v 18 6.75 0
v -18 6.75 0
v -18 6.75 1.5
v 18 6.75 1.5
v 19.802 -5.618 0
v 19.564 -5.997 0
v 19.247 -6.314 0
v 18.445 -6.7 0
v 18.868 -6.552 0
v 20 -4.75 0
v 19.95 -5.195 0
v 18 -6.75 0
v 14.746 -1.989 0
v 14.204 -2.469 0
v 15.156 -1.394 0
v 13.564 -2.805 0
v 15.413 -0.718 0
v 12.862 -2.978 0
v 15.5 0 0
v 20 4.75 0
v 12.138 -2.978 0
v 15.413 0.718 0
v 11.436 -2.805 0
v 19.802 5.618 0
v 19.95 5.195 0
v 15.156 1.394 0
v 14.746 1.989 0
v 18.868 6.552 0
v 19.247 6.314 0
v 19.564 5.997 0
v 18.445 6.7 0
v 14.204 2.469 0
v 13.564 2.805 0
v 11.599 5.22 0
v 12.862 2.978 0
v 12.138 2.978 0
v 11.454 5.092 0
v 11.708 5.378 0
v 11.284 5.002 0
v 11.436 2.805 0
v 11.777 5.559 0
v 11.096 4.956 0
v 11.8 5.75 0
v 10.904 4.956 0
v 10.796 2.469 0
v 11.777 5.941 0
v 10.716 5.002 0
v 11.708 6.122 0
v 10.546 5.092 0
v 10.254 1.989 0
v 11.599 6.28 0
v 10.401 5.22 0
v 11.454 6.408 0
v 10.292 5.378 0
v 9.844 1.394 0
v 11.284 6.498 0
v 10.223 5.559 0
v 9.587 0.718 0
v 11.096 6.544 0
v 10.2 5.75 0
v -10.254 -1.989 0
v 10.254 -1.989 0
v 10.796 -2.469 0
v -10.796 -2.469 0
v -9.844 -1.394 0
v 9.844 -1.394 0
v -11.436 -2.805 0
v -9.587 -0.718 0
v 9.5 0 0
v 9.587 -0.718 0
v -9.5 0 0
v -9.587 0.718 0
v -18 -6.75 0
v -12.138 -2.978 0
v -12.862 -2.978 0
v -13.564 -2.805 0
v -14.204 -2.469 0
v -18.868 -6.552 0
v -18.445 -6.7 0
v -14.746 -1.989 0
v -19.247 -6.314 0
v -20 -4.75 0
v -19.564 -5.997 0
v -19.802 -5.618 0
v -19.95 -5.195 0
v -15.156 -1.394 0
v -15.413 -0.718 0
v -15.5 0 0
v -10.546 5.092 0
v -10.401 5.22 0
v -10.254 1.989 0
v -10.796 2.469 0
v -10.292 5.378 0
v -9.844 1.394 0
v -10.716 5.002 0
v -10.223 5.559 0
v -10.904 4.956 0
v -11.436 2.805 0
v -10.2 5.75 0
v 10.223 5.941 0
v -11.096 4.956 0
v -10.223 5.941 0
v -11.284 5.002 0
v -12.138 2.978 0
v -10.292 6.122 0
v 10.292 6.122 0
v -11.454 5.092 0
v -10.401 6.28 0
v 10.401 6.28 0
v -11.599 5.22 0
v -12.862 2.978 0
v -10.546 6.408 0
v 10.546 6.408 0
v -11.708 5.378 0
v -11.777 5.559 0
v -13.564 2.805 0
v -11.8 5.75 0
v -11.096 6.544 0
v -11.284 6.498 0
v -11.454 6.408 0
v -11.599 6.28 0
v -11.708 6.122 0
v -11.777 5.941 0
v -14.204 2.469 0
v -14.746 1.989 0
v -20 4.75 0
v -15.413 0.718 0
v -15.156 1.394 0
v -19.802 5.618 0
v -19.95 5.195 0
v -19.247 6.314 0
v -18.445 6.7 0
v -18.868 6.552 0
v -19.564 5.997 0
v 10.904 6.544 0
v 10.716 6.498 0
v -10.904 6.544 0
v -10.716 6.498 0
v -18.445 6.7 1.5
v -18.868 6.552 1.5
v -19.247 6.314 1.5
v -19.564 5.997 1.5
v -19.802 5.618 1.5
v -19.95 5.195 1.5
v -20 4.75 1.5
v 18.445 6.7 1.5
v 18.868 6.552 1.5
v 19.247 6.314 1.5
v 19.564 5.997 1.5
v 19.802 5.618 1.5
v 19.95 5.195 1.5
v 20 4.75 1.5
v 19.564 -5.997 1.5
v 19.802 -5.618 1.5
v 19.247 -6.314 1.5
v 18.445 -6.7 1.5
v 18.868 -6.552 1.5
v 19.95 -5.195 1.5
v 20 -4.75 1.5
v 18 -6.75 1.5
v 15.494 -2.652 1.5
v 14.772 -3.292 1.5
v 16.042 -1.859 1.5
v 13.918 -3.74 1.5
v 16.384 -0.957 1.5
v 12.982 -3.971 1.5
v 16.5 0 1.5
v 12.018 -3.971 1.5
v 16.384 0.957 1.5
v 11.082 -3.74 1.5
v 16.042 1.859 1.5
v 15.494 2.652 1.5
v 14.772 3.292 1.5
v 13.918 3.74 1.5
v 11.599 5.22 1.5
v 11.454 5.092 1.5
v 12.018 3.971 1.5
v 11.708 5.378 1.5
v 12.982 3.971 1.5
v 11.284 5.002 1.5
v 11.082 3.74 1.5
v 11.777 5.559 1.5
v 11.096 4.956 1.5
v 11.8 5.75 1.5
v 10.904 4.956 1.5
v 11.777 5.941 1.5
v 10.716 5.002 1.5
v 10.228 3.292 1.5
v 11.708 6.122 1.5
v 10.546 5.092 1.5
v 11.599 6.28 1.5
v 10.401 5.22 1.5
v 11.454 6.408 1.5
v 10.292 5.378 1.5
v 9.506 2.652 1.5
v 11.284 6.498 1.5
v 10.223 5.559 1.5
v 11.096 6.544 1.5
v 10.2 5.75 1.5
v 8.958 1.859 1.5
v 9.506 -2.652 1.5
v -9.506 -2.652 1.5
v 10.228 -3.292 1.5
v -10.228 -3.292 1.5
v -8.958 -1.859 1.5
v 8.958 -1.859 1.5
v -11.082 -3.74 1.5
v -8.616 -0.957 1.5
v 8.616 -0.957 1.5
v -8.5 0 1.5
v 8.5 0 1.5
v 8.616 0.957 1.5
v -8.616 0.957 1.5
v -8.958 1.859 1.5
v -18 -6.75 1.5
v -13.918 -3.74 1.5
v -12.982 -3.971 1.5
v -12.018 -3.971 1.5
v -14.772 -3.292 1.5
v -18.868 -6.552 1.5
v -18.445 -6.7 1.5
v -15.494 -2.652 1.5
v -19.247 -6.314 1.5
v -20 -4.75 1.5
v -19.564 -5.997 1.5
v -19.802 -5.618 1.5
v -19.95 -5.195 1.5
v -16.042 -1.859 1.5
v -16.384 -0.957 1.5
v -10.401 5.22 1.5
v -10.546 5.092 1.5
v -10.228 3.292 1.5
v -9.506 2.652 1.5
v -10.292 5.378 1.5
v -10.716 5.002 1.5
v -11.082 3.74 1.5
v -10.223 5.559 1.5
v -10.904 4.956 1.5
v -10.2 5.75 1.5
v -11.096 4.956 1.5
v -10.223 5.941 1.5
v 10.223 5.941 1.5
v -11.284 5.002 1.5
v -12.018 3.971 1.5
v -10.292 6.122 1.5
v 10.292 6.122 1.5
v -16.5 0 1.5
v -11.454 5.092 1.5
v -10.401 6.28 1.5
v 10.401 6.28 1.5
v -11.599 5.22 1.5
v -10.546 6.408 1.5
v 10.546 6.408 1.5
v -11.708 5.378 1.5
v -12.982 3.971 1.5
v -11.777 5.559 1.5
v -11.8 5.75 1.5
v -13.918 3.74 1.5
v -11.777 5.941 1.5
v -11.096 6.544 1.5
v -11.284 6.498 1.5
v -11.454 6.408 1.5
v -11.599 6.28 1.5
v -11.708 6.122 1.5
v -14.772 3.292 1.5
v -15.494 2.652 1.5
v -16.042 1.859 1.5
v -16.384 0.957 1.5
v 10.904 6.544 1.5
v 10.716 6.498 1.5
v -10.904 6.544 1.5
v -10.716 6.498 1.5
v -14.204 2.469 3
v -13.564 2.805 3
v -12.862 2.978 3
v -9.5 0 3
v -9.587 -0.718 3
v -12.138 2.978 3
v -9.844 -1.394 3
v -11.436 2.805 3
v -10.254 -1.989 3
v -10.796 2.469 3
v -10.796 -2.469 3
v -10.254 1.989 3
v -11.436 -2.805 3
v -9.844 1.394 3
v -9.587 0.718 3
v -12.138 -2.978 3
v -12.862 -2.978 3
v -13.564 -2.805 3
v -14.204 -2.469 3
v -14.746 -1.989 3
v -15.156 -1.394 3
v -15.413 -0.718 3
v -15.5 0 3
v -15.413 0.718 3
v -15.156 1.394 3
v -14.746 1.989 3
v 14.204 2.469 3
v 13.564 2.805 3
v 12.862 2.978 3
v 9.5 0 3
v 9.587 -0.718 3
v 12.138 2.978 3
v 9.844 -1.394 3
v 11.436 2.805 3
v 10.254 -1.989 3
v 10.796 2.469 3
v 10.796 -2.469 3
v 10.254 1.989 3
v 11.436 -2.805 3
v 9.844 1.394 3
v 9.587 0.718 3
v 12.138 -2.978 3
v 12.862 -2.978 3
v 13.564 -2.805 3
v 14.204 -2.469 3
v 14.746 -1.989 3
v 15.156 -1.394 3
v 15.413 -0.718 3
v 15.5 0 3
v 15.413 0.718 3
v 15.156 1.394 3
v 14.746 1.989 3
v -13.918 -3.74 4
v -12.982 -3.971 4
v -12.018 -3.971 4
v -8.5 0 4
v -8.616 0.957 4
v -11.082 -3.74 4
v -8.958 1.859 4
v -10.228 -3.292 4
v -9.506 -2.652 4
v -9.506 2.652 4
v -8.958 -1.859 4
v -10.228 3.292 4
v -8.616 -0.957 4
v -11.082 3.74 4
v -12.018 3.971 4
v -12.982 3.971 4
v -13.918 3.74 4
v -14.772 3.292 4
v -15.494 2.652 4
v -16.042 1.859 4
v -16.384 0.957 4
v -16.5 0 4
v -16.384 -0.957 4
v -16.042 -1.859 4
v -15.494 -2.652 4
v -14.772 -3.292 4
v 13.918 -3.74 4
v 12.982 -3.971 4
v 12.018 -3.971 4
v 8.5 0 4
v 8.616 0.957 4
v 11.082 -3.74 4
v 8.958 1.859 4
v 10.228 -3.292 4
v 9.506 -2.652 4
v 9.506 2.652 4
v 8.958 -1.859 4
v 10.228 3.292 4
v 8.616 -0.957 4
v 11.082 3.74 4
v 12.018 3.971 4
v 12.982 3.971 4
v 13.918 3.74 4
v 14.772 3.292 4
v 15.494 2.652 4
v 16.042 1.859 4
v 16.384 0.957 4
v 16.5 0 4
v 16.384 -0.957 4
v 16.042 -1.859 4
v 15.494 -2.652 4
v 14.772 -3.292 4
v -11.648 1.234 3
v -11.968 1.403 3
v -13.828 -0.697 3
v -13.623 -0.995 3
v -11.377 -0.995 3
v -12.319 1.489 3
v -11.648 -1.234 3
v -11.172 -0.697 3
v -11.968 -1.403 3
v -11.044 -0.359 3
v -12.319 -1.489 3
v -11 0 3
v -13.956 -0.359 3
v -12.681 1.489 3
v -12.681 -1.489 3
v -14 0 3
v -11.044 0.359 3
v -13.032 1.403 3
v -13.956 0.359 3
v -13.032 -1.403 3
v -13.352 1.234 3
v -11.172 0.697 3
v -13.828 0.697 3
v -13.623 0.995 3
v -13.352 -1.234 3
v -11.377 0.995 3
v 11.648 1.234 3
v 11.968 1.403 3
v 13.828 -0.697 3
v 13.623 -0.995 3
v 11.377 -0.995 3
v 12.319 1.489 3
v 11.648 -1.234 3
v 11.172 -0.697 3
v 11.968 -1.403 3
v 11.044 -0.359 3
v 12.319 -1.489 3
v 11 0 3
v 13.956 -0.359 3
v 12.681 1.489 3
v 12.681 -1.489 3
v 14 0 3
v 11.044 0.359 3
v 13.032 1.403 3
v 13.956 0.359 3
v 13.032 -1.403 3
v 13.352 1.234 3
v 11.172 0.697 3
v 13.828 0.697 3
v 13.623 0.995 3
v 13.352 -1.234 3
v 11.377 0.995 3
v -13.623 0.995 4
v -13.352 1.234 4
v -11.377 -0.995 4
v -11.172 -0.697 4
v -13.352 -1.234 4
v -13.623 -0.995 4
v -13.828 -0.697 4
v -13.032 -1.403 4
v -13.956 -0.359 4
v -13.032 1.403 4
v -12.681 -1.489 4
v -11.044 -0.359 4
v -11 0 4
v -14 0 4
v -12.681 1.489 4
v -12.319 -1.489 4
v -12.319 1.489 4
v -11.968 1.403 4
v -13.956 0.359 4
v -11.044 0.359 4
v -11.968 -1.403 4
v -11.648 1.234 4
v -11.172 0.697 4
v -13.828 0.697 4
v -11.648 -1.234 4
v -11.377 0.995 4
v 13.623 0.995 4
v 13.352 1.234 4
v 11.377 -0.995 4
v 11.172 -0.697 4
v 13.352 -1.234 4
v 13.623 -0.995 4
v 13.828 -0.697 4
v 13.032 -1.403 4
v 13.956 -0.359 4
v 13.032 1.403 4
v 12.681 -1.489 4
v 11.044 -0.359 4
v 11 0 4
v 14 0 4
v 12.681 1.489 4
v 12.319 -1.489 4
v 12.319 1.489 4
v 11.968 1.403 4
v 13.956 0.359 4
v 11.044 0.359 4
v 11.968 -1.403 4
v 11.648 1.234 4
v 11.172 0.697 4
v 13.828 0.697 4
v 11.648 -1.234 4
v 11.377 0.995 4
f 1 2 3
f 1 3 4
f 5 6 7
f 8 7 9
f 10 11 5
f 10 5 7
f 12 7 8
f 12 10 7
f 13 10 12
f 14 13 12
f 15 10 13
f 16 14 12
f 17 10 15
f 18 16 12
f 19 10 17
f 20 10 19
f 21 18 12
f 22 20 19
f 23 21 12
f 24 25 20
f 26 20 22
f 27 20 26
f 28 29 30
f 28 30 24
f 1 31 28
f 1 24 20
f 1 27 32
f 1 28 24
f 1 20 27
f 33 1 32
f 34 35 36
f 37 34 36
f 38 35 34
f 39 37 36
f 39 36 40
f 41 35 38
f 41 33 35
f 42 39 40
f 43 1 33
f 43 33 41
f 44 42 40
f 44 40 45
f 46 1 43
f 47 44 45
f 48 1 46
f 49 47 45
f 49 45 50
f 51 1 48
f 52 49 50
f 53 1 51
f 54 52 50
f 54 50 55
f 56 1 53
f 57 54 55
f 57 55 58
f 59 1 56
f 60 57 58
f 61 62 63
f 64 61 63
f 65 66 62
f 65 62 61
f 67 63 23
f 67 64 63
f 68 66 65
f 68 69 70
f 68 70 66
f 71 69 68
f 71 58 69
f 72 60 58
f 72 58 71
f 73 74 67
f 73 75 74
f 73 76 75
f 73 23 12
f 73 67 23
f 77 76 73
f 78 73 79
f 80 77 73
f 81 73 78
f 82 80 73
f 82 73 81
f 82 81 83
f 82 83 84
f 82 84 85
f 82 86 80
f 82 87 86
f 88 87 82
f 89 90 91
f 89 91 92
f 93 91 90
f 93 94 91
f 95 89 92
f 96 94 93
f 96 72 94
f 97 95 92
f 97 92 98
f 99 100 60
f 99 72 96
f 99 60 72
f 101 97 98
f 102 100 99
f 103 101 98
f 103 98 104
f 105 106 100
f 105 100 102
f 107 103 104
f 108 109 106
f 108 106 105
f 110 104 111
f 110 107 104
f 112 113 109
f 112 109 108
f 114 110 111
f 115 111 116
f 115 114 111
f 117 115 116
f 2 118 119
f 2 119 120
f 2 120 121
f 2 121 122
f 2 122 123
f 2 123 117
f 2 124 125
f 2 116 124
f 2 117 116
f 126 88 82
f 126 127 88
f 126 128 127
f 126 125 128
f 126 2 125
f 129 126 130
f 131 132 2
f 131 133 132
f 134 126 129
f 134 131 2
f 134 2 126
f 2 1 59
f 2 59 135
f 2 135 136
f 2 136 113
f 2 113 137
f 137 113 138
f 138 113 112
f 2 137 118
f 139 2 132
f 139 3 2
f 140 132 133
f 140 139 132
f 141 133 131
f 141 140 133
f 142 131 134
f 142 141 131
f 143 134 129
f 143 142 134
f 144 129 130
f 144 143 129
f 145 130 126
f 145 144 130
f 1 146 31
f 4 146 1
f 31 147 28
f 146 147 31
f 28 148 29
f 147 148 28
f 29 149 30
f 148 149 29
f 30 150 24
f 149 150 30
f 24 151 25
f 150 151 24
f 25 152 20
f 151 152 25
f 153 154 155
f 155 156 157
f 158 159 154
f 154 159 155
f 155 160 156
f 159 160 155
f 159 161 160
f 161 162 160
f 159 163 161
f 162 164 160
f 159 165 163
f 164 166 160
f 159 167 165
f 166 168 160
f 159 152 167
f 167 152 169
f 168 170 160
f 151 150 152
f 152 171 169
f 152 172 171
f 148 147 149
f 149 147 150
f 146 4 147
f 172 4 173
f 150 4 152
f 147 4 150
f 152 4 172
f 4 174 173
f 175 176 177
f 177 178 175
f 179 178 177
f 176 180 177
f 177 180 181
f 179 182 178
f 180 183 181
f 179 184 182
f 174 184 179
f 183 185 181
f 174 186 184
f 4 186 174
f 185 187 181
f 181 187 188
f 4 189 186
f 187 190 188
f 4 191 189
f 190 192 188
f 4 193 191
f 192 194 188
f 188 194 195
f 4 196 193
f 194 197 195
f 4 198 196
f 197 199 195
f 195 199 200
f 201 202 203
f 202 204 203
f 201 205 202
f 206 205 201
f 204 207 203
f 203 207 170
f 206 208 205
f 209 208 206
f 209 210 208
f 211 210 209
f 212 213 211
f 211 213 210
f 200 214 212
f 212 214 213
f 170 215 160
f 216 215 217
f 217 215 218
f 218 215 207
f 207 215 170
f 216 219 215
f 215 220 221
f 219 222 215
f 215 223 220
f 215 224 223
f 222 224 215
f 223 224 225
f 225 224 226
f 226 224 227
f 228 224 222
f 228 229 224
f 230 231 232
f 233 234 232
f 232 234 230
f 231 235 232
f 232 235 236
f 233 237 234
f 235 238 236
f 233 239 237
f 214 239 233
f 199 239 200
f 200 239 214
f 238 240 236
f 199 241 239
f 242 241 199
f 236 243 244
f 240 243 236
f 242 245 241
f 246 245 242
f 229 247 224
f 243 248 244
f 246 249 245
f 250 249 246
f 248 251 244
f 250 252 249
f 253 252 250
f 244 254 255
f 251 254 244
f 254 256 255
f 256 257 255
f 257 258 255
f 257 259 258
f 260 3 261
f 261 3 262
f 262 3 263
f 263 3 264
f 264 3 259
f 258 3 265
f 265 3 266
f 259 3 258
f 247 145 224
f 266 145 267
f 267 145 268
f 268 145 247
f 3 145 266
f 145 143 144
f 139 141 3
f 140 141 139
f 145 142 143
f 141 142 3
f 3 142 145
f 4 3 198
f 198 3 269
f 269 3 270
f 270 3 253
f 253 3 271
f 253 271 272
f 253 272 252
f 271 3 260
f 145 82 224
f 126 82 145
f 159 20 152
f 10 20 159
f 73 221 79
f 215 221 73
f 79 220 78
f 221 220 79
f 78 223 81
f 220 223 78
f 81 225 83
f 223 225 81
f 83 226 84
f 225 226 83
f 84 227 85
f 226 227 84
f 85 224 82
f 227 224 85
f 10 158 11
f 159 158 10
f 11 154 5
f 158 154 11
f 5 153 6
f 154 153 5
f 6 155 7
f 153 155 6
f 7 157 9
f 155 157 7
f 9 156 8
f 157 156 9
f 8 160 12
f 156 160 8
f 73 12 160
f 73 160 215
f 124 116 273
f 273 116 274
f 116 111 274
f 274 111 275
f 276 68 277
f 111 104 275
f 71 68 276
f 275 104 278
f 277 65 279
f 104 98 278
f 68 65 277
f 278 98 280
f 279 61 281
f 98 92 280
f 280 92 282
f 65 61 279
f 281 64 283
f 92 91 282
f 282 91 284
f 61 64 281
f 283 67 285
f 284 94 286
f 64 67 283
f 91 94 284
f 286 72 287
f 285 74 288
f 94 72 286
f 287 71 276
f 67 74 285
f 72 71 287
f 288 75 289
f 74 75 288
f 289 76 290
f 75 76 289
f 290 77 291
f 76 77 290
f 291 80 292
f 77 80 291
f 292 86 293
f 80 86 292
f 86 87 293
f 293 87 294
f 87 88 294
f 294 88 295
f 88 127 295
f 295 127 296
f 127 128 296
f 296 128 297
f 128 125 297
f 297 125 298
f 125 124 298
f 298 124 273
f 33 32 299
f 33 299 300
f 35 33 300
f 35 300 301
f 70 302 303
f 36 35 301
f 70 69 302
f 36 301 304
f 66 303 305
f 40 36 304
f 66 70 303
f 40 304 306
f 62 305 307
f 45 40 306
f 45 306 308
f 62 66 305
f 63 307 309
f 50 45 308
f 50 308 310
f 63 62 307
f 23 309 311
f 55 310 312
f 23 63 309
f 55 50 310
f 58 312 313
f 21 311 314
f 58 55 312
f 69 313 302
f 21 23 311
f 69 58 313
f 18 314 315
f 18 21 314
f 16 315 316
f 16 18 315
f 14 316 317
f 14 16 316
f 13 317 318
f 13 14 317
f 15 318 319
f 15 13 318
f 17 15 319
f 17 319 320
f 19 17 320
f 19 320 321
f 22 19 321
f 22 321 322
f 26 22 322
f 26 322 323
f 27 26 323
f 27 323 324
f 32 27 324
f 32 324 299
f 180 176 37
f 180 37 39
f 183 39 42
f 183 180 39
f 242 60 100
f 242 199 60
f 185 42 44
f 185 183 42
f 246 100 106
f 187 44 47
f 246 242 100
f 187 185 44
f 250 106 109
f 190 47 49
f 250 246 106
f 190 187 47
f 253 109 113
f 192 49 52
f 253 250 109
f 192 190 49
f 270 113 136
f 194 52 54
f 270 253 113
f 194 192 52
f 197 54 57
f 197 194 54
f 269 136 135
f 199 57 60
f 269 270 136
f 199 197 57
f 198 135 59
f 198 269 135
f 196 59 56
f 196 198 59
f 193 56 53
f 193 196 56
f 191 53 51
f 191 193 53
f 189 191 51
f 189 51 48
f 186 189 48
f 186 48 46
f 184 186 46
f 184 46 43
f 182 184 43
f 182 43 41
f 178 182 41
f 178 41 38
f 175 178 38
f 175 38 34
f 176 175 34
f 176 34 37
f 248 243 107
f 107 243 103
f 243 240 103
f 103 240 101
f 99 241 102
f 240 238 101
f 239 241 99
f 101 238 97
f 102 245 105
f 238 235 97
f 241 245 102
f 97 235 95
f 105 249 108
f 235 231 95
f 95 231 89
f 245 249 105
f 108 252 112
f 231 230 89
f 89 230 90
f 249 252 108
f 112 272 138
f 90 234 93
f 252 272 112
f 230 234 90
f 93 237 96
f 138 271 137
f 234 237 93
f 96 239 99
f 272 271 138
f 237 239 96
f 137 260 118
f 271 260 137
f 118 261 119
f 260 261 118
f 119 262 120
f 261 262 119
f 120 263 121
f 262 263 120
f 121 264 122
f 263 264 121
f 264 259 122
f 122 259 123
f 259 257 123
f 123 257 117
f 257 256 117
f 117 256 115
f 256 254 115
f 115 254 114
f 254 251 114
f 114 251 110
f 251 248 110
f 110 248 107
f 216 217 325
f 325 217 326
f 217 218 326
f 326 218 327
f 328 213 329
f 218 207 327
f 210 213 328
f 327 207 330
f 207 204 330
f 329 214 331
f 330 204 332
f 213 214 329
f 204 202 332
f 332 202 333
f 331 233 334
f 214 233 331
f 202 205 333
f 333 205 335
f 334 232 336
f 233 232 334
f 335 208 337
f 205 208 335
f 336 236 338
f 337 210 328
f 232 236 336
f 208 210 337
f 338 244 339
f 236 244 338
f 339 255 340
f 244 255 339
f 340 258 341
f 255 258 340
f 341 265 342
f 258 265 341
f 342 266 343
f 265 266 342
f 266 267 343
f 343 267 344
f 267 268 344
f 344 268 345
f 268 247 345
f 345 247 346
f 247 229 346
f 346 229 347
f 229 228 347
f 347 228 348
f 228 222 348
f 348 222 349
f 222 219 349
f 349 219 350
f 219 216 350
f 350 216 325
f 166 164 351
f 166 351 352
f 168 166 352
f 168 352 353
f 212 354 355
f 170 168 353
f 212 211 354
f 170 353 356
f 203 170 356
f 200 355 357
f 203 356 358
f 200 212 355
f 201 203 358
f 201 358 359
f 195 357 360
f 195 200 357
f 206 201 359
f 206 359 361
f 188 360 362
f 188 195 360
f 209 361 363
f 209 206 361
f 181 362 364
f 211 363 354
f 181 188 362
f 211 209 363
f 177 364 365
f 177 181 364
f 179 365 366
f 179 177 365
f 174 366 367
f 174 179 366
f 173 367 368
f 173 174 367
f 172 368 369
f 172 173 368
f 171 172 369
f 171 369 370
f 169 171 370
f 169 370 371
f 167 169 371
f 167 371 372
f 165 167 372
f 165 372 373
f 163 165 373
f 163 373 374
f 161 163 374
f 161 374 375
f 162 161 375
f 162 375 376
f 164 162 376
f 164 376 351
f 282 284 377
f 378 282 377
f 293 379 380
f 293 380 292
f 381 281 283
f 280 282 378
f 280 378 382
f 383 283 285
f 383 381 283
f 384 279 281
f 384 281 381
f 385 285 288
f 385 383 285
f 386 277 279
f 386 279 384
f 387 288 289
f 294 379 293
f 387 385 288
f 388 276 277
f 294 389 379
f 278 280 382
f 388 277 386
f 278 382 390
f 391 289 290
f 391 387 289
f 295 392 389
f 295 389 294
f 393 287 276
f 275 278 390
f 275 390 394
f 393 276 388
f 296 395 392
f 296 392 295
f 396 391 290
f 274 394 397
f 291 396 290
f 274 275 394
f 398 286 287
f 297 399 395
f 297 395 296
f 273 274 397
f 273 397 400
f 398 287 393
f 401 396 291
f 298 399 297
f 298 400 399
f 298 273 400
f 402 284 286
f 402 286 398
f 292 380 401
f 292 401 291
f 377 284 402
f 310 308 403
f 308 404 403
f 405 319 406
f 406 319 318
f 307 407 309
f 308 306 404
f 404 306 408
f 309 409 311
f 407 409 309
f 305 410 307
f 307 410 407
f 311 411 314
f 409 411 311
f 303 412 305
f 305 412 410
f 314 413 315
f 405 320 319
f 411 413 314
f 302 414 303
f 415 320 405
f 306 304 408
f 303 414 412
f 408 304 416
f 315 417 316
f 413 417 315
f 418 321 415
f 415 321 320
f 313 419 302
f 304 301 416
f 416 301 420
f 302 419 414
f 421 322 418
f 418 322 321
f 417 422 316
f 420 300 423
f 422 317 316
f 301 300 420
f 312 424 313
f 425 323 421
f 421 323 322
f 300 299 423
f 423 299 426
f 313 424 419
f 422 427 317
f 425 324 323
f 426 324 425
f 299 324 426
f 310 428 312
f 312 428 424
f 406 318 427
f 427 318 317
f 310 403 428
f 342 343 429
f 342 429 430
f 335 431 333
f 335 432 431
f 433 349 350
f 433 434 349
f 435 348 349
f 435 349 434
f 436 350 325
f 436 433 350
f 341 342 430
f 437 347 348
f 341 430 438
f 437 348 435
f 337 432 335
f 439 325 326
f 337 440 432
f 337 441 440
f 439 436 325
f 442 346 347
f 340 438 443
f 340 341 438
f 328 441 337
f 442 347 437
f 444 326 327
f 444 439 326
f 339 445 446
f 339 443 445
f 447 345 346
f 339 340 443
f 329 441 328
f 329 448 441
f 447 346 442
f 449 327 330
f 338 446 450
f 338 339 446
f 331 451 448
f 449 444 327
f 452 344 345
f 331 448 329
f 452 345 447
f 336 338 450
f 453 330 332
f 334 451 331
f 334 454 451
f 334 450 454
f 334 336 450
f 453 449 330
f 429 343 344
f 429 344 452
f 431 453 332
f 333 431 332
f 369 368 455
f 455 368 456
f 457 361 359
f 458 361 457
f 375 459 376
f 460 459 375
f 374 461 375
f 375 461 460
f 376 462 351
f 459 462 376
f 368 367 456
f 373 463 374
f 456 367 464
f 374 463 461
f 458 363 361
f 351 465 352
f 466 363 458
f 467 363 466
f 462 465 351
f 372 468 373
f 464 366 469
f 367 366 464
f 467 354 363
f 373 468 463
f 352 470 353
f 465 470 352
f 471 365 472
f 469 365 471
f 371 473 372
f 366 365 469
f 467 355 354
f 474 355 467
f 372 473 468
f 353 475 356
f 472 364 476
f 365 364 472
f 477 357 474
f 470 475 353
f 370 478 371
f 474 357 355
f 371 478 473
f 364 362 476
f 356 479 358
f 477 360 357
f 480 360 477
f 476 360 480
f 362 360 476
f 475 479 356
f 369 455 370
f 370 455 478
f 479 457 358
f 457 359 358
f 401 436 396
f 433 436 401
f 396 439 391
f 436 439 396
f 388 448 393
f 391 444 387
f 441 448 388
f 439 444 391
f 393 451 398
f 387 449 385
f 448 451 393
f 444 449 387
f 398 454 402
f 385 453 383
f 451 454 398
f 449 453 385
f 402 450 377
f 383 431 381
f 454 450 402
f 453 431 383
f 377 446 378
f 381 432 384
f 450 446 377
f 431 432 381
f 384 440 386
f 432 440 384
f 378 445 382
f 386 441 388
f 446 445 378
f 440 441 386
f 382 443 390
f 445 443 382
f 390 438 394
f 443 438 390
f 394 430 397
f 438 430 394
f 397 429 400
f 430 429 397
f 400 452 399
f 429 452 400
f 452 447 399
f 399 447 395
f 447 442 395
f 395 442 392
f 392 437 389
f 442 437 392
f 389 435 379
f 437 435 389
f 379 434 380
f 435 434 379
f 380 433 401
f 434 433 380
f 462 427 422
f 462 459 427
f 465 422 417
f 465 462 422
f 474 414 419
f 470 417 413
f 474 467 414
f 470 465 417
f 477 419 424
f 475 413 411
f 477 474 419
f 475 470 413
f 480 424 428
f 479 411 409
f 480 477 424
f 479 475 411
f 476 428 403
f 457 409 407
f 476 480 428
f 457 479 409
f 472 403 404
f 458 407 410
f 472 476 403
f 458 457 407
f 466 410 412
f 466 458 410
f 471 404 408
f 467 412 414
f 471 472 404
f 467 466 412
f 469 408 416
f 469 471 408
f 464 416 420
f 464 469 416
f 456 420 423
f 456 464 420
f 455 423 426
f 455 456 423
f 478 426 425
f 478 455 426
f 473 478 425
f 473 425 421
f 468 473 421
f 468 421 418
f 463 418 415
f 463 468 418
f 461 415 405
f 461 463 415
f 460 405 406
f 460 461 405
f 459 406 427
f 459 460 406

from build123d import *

# Parameters (mm, degrees)
SKETCH_W        = 40
SKETCH_H        = 13.5
PAD_DEPTH       = 1.5
FILLET_R        = 2
SKETCH001_R     = 0.8
POCKET_DEPTH    = 5
SKETCH002_R     = 4
PAD001_DEPTH    = 2.5
SKETCH003_R     = 1.5
POCKET001_DEPTH = 1
SKETCH004_R     = 3
POCKET002_DEPTH = 3


with BuildPart() as part:
    # Sketch → Pad (new body)
    with BuildSketch(Plane.XY):
        Rectangle(SKETCH_W, SKETCH_H)
    extrude(amount=PAD_DEPTH)

    # Fillet
    fillet_edges = [part.edges().sort_by_distance(p)[0] for p in [
        (-20, -6.75, 0.75),
        (-20, 6.75, 0.75),
        (20, 6.75, 0.75),
        (20, -6.75, 0.75),
    ]]
    fillet(fillet_edges, radius=FILLET_R)

    # Sketch001 (on Face5 of Fillet) → Pocket (cut)
    with BuildSketch(Plane.XY.offset(1.5)):
        with Locations((-11, 5.75)):
            Circle(SKETCH001_R)
    pocket = extrude(amount=-POCKET_DEPTH, mode=Mode.SUBTRACT)

    # Mirrored: Pocket across Sketch001 V_Axis
    add(pocket.mirror(Plane(origin=(0, 0, 1.5), x_dir=(0, 0, 1), z_dir=(1, 0, 0))), mode=Mode.SUBTRACT)

    # Sketch002 (on Face5 of Mirrored) → Pad001 (join)
    with BuildSketch(Plane.XY.offset(1.5)):
        with Locations((-12.5, 0)):
            Circle(SKETCH002_R)
    pad001 = extrude(amount=PAD001_DEPTH)

    # Mirrored001: Pad001 across Sketch002 V_Axis
    add(pad001.mirror(Plane(origin=(0, 0, 1.5), x_dir=(0, 0, 1), z_dir=(1, 0, 0))))

    # Sketch003 (on Face15 of Mirrored001) → Pocket001 (cut)
    with BuildSketch(Plane.XY.offset(4)):
        with Locations((-12.5, 0)):
            Circle(SKETCH003_R)
    pocket001 = extrude(amount=-POCKET001_DEPTH, mode=Mode.SUBTRACT)

    # Mirrored002: Pocket001 across Sketch003 V_Axis
    add(pocket001.mirror(Plane(origin=(0, 0, 4), x_dir=(0, 0, 1), z_dir=(1, 0, 0))), mode=Mode.SUBTRACT)

    # Sketch004 (on Face2 of Mirrored002) → Pocket002 (cut)
    with BuildSketch(Plane(origin=(0, 0, 0), x_dir=(1, 0, 0), z_dir=(0, 0, -1))):
        with Locations((-12.5, 0)):
            Circle(SKETCH004_R)
    pocket002 = extrude(amount=-POCKET002_DEPTH, mode=Mode.SUBTRACT)

    # Mirrored003: Pocket002 across Sketch004 V_Axis
    add(pocket002.mirror(Plane(origin=(0, 0, 0), x_dir=(0, 0, -1), z_dir=(1, 0, 0))), mode=Mode.SUBTRACT)


solid = part.part
